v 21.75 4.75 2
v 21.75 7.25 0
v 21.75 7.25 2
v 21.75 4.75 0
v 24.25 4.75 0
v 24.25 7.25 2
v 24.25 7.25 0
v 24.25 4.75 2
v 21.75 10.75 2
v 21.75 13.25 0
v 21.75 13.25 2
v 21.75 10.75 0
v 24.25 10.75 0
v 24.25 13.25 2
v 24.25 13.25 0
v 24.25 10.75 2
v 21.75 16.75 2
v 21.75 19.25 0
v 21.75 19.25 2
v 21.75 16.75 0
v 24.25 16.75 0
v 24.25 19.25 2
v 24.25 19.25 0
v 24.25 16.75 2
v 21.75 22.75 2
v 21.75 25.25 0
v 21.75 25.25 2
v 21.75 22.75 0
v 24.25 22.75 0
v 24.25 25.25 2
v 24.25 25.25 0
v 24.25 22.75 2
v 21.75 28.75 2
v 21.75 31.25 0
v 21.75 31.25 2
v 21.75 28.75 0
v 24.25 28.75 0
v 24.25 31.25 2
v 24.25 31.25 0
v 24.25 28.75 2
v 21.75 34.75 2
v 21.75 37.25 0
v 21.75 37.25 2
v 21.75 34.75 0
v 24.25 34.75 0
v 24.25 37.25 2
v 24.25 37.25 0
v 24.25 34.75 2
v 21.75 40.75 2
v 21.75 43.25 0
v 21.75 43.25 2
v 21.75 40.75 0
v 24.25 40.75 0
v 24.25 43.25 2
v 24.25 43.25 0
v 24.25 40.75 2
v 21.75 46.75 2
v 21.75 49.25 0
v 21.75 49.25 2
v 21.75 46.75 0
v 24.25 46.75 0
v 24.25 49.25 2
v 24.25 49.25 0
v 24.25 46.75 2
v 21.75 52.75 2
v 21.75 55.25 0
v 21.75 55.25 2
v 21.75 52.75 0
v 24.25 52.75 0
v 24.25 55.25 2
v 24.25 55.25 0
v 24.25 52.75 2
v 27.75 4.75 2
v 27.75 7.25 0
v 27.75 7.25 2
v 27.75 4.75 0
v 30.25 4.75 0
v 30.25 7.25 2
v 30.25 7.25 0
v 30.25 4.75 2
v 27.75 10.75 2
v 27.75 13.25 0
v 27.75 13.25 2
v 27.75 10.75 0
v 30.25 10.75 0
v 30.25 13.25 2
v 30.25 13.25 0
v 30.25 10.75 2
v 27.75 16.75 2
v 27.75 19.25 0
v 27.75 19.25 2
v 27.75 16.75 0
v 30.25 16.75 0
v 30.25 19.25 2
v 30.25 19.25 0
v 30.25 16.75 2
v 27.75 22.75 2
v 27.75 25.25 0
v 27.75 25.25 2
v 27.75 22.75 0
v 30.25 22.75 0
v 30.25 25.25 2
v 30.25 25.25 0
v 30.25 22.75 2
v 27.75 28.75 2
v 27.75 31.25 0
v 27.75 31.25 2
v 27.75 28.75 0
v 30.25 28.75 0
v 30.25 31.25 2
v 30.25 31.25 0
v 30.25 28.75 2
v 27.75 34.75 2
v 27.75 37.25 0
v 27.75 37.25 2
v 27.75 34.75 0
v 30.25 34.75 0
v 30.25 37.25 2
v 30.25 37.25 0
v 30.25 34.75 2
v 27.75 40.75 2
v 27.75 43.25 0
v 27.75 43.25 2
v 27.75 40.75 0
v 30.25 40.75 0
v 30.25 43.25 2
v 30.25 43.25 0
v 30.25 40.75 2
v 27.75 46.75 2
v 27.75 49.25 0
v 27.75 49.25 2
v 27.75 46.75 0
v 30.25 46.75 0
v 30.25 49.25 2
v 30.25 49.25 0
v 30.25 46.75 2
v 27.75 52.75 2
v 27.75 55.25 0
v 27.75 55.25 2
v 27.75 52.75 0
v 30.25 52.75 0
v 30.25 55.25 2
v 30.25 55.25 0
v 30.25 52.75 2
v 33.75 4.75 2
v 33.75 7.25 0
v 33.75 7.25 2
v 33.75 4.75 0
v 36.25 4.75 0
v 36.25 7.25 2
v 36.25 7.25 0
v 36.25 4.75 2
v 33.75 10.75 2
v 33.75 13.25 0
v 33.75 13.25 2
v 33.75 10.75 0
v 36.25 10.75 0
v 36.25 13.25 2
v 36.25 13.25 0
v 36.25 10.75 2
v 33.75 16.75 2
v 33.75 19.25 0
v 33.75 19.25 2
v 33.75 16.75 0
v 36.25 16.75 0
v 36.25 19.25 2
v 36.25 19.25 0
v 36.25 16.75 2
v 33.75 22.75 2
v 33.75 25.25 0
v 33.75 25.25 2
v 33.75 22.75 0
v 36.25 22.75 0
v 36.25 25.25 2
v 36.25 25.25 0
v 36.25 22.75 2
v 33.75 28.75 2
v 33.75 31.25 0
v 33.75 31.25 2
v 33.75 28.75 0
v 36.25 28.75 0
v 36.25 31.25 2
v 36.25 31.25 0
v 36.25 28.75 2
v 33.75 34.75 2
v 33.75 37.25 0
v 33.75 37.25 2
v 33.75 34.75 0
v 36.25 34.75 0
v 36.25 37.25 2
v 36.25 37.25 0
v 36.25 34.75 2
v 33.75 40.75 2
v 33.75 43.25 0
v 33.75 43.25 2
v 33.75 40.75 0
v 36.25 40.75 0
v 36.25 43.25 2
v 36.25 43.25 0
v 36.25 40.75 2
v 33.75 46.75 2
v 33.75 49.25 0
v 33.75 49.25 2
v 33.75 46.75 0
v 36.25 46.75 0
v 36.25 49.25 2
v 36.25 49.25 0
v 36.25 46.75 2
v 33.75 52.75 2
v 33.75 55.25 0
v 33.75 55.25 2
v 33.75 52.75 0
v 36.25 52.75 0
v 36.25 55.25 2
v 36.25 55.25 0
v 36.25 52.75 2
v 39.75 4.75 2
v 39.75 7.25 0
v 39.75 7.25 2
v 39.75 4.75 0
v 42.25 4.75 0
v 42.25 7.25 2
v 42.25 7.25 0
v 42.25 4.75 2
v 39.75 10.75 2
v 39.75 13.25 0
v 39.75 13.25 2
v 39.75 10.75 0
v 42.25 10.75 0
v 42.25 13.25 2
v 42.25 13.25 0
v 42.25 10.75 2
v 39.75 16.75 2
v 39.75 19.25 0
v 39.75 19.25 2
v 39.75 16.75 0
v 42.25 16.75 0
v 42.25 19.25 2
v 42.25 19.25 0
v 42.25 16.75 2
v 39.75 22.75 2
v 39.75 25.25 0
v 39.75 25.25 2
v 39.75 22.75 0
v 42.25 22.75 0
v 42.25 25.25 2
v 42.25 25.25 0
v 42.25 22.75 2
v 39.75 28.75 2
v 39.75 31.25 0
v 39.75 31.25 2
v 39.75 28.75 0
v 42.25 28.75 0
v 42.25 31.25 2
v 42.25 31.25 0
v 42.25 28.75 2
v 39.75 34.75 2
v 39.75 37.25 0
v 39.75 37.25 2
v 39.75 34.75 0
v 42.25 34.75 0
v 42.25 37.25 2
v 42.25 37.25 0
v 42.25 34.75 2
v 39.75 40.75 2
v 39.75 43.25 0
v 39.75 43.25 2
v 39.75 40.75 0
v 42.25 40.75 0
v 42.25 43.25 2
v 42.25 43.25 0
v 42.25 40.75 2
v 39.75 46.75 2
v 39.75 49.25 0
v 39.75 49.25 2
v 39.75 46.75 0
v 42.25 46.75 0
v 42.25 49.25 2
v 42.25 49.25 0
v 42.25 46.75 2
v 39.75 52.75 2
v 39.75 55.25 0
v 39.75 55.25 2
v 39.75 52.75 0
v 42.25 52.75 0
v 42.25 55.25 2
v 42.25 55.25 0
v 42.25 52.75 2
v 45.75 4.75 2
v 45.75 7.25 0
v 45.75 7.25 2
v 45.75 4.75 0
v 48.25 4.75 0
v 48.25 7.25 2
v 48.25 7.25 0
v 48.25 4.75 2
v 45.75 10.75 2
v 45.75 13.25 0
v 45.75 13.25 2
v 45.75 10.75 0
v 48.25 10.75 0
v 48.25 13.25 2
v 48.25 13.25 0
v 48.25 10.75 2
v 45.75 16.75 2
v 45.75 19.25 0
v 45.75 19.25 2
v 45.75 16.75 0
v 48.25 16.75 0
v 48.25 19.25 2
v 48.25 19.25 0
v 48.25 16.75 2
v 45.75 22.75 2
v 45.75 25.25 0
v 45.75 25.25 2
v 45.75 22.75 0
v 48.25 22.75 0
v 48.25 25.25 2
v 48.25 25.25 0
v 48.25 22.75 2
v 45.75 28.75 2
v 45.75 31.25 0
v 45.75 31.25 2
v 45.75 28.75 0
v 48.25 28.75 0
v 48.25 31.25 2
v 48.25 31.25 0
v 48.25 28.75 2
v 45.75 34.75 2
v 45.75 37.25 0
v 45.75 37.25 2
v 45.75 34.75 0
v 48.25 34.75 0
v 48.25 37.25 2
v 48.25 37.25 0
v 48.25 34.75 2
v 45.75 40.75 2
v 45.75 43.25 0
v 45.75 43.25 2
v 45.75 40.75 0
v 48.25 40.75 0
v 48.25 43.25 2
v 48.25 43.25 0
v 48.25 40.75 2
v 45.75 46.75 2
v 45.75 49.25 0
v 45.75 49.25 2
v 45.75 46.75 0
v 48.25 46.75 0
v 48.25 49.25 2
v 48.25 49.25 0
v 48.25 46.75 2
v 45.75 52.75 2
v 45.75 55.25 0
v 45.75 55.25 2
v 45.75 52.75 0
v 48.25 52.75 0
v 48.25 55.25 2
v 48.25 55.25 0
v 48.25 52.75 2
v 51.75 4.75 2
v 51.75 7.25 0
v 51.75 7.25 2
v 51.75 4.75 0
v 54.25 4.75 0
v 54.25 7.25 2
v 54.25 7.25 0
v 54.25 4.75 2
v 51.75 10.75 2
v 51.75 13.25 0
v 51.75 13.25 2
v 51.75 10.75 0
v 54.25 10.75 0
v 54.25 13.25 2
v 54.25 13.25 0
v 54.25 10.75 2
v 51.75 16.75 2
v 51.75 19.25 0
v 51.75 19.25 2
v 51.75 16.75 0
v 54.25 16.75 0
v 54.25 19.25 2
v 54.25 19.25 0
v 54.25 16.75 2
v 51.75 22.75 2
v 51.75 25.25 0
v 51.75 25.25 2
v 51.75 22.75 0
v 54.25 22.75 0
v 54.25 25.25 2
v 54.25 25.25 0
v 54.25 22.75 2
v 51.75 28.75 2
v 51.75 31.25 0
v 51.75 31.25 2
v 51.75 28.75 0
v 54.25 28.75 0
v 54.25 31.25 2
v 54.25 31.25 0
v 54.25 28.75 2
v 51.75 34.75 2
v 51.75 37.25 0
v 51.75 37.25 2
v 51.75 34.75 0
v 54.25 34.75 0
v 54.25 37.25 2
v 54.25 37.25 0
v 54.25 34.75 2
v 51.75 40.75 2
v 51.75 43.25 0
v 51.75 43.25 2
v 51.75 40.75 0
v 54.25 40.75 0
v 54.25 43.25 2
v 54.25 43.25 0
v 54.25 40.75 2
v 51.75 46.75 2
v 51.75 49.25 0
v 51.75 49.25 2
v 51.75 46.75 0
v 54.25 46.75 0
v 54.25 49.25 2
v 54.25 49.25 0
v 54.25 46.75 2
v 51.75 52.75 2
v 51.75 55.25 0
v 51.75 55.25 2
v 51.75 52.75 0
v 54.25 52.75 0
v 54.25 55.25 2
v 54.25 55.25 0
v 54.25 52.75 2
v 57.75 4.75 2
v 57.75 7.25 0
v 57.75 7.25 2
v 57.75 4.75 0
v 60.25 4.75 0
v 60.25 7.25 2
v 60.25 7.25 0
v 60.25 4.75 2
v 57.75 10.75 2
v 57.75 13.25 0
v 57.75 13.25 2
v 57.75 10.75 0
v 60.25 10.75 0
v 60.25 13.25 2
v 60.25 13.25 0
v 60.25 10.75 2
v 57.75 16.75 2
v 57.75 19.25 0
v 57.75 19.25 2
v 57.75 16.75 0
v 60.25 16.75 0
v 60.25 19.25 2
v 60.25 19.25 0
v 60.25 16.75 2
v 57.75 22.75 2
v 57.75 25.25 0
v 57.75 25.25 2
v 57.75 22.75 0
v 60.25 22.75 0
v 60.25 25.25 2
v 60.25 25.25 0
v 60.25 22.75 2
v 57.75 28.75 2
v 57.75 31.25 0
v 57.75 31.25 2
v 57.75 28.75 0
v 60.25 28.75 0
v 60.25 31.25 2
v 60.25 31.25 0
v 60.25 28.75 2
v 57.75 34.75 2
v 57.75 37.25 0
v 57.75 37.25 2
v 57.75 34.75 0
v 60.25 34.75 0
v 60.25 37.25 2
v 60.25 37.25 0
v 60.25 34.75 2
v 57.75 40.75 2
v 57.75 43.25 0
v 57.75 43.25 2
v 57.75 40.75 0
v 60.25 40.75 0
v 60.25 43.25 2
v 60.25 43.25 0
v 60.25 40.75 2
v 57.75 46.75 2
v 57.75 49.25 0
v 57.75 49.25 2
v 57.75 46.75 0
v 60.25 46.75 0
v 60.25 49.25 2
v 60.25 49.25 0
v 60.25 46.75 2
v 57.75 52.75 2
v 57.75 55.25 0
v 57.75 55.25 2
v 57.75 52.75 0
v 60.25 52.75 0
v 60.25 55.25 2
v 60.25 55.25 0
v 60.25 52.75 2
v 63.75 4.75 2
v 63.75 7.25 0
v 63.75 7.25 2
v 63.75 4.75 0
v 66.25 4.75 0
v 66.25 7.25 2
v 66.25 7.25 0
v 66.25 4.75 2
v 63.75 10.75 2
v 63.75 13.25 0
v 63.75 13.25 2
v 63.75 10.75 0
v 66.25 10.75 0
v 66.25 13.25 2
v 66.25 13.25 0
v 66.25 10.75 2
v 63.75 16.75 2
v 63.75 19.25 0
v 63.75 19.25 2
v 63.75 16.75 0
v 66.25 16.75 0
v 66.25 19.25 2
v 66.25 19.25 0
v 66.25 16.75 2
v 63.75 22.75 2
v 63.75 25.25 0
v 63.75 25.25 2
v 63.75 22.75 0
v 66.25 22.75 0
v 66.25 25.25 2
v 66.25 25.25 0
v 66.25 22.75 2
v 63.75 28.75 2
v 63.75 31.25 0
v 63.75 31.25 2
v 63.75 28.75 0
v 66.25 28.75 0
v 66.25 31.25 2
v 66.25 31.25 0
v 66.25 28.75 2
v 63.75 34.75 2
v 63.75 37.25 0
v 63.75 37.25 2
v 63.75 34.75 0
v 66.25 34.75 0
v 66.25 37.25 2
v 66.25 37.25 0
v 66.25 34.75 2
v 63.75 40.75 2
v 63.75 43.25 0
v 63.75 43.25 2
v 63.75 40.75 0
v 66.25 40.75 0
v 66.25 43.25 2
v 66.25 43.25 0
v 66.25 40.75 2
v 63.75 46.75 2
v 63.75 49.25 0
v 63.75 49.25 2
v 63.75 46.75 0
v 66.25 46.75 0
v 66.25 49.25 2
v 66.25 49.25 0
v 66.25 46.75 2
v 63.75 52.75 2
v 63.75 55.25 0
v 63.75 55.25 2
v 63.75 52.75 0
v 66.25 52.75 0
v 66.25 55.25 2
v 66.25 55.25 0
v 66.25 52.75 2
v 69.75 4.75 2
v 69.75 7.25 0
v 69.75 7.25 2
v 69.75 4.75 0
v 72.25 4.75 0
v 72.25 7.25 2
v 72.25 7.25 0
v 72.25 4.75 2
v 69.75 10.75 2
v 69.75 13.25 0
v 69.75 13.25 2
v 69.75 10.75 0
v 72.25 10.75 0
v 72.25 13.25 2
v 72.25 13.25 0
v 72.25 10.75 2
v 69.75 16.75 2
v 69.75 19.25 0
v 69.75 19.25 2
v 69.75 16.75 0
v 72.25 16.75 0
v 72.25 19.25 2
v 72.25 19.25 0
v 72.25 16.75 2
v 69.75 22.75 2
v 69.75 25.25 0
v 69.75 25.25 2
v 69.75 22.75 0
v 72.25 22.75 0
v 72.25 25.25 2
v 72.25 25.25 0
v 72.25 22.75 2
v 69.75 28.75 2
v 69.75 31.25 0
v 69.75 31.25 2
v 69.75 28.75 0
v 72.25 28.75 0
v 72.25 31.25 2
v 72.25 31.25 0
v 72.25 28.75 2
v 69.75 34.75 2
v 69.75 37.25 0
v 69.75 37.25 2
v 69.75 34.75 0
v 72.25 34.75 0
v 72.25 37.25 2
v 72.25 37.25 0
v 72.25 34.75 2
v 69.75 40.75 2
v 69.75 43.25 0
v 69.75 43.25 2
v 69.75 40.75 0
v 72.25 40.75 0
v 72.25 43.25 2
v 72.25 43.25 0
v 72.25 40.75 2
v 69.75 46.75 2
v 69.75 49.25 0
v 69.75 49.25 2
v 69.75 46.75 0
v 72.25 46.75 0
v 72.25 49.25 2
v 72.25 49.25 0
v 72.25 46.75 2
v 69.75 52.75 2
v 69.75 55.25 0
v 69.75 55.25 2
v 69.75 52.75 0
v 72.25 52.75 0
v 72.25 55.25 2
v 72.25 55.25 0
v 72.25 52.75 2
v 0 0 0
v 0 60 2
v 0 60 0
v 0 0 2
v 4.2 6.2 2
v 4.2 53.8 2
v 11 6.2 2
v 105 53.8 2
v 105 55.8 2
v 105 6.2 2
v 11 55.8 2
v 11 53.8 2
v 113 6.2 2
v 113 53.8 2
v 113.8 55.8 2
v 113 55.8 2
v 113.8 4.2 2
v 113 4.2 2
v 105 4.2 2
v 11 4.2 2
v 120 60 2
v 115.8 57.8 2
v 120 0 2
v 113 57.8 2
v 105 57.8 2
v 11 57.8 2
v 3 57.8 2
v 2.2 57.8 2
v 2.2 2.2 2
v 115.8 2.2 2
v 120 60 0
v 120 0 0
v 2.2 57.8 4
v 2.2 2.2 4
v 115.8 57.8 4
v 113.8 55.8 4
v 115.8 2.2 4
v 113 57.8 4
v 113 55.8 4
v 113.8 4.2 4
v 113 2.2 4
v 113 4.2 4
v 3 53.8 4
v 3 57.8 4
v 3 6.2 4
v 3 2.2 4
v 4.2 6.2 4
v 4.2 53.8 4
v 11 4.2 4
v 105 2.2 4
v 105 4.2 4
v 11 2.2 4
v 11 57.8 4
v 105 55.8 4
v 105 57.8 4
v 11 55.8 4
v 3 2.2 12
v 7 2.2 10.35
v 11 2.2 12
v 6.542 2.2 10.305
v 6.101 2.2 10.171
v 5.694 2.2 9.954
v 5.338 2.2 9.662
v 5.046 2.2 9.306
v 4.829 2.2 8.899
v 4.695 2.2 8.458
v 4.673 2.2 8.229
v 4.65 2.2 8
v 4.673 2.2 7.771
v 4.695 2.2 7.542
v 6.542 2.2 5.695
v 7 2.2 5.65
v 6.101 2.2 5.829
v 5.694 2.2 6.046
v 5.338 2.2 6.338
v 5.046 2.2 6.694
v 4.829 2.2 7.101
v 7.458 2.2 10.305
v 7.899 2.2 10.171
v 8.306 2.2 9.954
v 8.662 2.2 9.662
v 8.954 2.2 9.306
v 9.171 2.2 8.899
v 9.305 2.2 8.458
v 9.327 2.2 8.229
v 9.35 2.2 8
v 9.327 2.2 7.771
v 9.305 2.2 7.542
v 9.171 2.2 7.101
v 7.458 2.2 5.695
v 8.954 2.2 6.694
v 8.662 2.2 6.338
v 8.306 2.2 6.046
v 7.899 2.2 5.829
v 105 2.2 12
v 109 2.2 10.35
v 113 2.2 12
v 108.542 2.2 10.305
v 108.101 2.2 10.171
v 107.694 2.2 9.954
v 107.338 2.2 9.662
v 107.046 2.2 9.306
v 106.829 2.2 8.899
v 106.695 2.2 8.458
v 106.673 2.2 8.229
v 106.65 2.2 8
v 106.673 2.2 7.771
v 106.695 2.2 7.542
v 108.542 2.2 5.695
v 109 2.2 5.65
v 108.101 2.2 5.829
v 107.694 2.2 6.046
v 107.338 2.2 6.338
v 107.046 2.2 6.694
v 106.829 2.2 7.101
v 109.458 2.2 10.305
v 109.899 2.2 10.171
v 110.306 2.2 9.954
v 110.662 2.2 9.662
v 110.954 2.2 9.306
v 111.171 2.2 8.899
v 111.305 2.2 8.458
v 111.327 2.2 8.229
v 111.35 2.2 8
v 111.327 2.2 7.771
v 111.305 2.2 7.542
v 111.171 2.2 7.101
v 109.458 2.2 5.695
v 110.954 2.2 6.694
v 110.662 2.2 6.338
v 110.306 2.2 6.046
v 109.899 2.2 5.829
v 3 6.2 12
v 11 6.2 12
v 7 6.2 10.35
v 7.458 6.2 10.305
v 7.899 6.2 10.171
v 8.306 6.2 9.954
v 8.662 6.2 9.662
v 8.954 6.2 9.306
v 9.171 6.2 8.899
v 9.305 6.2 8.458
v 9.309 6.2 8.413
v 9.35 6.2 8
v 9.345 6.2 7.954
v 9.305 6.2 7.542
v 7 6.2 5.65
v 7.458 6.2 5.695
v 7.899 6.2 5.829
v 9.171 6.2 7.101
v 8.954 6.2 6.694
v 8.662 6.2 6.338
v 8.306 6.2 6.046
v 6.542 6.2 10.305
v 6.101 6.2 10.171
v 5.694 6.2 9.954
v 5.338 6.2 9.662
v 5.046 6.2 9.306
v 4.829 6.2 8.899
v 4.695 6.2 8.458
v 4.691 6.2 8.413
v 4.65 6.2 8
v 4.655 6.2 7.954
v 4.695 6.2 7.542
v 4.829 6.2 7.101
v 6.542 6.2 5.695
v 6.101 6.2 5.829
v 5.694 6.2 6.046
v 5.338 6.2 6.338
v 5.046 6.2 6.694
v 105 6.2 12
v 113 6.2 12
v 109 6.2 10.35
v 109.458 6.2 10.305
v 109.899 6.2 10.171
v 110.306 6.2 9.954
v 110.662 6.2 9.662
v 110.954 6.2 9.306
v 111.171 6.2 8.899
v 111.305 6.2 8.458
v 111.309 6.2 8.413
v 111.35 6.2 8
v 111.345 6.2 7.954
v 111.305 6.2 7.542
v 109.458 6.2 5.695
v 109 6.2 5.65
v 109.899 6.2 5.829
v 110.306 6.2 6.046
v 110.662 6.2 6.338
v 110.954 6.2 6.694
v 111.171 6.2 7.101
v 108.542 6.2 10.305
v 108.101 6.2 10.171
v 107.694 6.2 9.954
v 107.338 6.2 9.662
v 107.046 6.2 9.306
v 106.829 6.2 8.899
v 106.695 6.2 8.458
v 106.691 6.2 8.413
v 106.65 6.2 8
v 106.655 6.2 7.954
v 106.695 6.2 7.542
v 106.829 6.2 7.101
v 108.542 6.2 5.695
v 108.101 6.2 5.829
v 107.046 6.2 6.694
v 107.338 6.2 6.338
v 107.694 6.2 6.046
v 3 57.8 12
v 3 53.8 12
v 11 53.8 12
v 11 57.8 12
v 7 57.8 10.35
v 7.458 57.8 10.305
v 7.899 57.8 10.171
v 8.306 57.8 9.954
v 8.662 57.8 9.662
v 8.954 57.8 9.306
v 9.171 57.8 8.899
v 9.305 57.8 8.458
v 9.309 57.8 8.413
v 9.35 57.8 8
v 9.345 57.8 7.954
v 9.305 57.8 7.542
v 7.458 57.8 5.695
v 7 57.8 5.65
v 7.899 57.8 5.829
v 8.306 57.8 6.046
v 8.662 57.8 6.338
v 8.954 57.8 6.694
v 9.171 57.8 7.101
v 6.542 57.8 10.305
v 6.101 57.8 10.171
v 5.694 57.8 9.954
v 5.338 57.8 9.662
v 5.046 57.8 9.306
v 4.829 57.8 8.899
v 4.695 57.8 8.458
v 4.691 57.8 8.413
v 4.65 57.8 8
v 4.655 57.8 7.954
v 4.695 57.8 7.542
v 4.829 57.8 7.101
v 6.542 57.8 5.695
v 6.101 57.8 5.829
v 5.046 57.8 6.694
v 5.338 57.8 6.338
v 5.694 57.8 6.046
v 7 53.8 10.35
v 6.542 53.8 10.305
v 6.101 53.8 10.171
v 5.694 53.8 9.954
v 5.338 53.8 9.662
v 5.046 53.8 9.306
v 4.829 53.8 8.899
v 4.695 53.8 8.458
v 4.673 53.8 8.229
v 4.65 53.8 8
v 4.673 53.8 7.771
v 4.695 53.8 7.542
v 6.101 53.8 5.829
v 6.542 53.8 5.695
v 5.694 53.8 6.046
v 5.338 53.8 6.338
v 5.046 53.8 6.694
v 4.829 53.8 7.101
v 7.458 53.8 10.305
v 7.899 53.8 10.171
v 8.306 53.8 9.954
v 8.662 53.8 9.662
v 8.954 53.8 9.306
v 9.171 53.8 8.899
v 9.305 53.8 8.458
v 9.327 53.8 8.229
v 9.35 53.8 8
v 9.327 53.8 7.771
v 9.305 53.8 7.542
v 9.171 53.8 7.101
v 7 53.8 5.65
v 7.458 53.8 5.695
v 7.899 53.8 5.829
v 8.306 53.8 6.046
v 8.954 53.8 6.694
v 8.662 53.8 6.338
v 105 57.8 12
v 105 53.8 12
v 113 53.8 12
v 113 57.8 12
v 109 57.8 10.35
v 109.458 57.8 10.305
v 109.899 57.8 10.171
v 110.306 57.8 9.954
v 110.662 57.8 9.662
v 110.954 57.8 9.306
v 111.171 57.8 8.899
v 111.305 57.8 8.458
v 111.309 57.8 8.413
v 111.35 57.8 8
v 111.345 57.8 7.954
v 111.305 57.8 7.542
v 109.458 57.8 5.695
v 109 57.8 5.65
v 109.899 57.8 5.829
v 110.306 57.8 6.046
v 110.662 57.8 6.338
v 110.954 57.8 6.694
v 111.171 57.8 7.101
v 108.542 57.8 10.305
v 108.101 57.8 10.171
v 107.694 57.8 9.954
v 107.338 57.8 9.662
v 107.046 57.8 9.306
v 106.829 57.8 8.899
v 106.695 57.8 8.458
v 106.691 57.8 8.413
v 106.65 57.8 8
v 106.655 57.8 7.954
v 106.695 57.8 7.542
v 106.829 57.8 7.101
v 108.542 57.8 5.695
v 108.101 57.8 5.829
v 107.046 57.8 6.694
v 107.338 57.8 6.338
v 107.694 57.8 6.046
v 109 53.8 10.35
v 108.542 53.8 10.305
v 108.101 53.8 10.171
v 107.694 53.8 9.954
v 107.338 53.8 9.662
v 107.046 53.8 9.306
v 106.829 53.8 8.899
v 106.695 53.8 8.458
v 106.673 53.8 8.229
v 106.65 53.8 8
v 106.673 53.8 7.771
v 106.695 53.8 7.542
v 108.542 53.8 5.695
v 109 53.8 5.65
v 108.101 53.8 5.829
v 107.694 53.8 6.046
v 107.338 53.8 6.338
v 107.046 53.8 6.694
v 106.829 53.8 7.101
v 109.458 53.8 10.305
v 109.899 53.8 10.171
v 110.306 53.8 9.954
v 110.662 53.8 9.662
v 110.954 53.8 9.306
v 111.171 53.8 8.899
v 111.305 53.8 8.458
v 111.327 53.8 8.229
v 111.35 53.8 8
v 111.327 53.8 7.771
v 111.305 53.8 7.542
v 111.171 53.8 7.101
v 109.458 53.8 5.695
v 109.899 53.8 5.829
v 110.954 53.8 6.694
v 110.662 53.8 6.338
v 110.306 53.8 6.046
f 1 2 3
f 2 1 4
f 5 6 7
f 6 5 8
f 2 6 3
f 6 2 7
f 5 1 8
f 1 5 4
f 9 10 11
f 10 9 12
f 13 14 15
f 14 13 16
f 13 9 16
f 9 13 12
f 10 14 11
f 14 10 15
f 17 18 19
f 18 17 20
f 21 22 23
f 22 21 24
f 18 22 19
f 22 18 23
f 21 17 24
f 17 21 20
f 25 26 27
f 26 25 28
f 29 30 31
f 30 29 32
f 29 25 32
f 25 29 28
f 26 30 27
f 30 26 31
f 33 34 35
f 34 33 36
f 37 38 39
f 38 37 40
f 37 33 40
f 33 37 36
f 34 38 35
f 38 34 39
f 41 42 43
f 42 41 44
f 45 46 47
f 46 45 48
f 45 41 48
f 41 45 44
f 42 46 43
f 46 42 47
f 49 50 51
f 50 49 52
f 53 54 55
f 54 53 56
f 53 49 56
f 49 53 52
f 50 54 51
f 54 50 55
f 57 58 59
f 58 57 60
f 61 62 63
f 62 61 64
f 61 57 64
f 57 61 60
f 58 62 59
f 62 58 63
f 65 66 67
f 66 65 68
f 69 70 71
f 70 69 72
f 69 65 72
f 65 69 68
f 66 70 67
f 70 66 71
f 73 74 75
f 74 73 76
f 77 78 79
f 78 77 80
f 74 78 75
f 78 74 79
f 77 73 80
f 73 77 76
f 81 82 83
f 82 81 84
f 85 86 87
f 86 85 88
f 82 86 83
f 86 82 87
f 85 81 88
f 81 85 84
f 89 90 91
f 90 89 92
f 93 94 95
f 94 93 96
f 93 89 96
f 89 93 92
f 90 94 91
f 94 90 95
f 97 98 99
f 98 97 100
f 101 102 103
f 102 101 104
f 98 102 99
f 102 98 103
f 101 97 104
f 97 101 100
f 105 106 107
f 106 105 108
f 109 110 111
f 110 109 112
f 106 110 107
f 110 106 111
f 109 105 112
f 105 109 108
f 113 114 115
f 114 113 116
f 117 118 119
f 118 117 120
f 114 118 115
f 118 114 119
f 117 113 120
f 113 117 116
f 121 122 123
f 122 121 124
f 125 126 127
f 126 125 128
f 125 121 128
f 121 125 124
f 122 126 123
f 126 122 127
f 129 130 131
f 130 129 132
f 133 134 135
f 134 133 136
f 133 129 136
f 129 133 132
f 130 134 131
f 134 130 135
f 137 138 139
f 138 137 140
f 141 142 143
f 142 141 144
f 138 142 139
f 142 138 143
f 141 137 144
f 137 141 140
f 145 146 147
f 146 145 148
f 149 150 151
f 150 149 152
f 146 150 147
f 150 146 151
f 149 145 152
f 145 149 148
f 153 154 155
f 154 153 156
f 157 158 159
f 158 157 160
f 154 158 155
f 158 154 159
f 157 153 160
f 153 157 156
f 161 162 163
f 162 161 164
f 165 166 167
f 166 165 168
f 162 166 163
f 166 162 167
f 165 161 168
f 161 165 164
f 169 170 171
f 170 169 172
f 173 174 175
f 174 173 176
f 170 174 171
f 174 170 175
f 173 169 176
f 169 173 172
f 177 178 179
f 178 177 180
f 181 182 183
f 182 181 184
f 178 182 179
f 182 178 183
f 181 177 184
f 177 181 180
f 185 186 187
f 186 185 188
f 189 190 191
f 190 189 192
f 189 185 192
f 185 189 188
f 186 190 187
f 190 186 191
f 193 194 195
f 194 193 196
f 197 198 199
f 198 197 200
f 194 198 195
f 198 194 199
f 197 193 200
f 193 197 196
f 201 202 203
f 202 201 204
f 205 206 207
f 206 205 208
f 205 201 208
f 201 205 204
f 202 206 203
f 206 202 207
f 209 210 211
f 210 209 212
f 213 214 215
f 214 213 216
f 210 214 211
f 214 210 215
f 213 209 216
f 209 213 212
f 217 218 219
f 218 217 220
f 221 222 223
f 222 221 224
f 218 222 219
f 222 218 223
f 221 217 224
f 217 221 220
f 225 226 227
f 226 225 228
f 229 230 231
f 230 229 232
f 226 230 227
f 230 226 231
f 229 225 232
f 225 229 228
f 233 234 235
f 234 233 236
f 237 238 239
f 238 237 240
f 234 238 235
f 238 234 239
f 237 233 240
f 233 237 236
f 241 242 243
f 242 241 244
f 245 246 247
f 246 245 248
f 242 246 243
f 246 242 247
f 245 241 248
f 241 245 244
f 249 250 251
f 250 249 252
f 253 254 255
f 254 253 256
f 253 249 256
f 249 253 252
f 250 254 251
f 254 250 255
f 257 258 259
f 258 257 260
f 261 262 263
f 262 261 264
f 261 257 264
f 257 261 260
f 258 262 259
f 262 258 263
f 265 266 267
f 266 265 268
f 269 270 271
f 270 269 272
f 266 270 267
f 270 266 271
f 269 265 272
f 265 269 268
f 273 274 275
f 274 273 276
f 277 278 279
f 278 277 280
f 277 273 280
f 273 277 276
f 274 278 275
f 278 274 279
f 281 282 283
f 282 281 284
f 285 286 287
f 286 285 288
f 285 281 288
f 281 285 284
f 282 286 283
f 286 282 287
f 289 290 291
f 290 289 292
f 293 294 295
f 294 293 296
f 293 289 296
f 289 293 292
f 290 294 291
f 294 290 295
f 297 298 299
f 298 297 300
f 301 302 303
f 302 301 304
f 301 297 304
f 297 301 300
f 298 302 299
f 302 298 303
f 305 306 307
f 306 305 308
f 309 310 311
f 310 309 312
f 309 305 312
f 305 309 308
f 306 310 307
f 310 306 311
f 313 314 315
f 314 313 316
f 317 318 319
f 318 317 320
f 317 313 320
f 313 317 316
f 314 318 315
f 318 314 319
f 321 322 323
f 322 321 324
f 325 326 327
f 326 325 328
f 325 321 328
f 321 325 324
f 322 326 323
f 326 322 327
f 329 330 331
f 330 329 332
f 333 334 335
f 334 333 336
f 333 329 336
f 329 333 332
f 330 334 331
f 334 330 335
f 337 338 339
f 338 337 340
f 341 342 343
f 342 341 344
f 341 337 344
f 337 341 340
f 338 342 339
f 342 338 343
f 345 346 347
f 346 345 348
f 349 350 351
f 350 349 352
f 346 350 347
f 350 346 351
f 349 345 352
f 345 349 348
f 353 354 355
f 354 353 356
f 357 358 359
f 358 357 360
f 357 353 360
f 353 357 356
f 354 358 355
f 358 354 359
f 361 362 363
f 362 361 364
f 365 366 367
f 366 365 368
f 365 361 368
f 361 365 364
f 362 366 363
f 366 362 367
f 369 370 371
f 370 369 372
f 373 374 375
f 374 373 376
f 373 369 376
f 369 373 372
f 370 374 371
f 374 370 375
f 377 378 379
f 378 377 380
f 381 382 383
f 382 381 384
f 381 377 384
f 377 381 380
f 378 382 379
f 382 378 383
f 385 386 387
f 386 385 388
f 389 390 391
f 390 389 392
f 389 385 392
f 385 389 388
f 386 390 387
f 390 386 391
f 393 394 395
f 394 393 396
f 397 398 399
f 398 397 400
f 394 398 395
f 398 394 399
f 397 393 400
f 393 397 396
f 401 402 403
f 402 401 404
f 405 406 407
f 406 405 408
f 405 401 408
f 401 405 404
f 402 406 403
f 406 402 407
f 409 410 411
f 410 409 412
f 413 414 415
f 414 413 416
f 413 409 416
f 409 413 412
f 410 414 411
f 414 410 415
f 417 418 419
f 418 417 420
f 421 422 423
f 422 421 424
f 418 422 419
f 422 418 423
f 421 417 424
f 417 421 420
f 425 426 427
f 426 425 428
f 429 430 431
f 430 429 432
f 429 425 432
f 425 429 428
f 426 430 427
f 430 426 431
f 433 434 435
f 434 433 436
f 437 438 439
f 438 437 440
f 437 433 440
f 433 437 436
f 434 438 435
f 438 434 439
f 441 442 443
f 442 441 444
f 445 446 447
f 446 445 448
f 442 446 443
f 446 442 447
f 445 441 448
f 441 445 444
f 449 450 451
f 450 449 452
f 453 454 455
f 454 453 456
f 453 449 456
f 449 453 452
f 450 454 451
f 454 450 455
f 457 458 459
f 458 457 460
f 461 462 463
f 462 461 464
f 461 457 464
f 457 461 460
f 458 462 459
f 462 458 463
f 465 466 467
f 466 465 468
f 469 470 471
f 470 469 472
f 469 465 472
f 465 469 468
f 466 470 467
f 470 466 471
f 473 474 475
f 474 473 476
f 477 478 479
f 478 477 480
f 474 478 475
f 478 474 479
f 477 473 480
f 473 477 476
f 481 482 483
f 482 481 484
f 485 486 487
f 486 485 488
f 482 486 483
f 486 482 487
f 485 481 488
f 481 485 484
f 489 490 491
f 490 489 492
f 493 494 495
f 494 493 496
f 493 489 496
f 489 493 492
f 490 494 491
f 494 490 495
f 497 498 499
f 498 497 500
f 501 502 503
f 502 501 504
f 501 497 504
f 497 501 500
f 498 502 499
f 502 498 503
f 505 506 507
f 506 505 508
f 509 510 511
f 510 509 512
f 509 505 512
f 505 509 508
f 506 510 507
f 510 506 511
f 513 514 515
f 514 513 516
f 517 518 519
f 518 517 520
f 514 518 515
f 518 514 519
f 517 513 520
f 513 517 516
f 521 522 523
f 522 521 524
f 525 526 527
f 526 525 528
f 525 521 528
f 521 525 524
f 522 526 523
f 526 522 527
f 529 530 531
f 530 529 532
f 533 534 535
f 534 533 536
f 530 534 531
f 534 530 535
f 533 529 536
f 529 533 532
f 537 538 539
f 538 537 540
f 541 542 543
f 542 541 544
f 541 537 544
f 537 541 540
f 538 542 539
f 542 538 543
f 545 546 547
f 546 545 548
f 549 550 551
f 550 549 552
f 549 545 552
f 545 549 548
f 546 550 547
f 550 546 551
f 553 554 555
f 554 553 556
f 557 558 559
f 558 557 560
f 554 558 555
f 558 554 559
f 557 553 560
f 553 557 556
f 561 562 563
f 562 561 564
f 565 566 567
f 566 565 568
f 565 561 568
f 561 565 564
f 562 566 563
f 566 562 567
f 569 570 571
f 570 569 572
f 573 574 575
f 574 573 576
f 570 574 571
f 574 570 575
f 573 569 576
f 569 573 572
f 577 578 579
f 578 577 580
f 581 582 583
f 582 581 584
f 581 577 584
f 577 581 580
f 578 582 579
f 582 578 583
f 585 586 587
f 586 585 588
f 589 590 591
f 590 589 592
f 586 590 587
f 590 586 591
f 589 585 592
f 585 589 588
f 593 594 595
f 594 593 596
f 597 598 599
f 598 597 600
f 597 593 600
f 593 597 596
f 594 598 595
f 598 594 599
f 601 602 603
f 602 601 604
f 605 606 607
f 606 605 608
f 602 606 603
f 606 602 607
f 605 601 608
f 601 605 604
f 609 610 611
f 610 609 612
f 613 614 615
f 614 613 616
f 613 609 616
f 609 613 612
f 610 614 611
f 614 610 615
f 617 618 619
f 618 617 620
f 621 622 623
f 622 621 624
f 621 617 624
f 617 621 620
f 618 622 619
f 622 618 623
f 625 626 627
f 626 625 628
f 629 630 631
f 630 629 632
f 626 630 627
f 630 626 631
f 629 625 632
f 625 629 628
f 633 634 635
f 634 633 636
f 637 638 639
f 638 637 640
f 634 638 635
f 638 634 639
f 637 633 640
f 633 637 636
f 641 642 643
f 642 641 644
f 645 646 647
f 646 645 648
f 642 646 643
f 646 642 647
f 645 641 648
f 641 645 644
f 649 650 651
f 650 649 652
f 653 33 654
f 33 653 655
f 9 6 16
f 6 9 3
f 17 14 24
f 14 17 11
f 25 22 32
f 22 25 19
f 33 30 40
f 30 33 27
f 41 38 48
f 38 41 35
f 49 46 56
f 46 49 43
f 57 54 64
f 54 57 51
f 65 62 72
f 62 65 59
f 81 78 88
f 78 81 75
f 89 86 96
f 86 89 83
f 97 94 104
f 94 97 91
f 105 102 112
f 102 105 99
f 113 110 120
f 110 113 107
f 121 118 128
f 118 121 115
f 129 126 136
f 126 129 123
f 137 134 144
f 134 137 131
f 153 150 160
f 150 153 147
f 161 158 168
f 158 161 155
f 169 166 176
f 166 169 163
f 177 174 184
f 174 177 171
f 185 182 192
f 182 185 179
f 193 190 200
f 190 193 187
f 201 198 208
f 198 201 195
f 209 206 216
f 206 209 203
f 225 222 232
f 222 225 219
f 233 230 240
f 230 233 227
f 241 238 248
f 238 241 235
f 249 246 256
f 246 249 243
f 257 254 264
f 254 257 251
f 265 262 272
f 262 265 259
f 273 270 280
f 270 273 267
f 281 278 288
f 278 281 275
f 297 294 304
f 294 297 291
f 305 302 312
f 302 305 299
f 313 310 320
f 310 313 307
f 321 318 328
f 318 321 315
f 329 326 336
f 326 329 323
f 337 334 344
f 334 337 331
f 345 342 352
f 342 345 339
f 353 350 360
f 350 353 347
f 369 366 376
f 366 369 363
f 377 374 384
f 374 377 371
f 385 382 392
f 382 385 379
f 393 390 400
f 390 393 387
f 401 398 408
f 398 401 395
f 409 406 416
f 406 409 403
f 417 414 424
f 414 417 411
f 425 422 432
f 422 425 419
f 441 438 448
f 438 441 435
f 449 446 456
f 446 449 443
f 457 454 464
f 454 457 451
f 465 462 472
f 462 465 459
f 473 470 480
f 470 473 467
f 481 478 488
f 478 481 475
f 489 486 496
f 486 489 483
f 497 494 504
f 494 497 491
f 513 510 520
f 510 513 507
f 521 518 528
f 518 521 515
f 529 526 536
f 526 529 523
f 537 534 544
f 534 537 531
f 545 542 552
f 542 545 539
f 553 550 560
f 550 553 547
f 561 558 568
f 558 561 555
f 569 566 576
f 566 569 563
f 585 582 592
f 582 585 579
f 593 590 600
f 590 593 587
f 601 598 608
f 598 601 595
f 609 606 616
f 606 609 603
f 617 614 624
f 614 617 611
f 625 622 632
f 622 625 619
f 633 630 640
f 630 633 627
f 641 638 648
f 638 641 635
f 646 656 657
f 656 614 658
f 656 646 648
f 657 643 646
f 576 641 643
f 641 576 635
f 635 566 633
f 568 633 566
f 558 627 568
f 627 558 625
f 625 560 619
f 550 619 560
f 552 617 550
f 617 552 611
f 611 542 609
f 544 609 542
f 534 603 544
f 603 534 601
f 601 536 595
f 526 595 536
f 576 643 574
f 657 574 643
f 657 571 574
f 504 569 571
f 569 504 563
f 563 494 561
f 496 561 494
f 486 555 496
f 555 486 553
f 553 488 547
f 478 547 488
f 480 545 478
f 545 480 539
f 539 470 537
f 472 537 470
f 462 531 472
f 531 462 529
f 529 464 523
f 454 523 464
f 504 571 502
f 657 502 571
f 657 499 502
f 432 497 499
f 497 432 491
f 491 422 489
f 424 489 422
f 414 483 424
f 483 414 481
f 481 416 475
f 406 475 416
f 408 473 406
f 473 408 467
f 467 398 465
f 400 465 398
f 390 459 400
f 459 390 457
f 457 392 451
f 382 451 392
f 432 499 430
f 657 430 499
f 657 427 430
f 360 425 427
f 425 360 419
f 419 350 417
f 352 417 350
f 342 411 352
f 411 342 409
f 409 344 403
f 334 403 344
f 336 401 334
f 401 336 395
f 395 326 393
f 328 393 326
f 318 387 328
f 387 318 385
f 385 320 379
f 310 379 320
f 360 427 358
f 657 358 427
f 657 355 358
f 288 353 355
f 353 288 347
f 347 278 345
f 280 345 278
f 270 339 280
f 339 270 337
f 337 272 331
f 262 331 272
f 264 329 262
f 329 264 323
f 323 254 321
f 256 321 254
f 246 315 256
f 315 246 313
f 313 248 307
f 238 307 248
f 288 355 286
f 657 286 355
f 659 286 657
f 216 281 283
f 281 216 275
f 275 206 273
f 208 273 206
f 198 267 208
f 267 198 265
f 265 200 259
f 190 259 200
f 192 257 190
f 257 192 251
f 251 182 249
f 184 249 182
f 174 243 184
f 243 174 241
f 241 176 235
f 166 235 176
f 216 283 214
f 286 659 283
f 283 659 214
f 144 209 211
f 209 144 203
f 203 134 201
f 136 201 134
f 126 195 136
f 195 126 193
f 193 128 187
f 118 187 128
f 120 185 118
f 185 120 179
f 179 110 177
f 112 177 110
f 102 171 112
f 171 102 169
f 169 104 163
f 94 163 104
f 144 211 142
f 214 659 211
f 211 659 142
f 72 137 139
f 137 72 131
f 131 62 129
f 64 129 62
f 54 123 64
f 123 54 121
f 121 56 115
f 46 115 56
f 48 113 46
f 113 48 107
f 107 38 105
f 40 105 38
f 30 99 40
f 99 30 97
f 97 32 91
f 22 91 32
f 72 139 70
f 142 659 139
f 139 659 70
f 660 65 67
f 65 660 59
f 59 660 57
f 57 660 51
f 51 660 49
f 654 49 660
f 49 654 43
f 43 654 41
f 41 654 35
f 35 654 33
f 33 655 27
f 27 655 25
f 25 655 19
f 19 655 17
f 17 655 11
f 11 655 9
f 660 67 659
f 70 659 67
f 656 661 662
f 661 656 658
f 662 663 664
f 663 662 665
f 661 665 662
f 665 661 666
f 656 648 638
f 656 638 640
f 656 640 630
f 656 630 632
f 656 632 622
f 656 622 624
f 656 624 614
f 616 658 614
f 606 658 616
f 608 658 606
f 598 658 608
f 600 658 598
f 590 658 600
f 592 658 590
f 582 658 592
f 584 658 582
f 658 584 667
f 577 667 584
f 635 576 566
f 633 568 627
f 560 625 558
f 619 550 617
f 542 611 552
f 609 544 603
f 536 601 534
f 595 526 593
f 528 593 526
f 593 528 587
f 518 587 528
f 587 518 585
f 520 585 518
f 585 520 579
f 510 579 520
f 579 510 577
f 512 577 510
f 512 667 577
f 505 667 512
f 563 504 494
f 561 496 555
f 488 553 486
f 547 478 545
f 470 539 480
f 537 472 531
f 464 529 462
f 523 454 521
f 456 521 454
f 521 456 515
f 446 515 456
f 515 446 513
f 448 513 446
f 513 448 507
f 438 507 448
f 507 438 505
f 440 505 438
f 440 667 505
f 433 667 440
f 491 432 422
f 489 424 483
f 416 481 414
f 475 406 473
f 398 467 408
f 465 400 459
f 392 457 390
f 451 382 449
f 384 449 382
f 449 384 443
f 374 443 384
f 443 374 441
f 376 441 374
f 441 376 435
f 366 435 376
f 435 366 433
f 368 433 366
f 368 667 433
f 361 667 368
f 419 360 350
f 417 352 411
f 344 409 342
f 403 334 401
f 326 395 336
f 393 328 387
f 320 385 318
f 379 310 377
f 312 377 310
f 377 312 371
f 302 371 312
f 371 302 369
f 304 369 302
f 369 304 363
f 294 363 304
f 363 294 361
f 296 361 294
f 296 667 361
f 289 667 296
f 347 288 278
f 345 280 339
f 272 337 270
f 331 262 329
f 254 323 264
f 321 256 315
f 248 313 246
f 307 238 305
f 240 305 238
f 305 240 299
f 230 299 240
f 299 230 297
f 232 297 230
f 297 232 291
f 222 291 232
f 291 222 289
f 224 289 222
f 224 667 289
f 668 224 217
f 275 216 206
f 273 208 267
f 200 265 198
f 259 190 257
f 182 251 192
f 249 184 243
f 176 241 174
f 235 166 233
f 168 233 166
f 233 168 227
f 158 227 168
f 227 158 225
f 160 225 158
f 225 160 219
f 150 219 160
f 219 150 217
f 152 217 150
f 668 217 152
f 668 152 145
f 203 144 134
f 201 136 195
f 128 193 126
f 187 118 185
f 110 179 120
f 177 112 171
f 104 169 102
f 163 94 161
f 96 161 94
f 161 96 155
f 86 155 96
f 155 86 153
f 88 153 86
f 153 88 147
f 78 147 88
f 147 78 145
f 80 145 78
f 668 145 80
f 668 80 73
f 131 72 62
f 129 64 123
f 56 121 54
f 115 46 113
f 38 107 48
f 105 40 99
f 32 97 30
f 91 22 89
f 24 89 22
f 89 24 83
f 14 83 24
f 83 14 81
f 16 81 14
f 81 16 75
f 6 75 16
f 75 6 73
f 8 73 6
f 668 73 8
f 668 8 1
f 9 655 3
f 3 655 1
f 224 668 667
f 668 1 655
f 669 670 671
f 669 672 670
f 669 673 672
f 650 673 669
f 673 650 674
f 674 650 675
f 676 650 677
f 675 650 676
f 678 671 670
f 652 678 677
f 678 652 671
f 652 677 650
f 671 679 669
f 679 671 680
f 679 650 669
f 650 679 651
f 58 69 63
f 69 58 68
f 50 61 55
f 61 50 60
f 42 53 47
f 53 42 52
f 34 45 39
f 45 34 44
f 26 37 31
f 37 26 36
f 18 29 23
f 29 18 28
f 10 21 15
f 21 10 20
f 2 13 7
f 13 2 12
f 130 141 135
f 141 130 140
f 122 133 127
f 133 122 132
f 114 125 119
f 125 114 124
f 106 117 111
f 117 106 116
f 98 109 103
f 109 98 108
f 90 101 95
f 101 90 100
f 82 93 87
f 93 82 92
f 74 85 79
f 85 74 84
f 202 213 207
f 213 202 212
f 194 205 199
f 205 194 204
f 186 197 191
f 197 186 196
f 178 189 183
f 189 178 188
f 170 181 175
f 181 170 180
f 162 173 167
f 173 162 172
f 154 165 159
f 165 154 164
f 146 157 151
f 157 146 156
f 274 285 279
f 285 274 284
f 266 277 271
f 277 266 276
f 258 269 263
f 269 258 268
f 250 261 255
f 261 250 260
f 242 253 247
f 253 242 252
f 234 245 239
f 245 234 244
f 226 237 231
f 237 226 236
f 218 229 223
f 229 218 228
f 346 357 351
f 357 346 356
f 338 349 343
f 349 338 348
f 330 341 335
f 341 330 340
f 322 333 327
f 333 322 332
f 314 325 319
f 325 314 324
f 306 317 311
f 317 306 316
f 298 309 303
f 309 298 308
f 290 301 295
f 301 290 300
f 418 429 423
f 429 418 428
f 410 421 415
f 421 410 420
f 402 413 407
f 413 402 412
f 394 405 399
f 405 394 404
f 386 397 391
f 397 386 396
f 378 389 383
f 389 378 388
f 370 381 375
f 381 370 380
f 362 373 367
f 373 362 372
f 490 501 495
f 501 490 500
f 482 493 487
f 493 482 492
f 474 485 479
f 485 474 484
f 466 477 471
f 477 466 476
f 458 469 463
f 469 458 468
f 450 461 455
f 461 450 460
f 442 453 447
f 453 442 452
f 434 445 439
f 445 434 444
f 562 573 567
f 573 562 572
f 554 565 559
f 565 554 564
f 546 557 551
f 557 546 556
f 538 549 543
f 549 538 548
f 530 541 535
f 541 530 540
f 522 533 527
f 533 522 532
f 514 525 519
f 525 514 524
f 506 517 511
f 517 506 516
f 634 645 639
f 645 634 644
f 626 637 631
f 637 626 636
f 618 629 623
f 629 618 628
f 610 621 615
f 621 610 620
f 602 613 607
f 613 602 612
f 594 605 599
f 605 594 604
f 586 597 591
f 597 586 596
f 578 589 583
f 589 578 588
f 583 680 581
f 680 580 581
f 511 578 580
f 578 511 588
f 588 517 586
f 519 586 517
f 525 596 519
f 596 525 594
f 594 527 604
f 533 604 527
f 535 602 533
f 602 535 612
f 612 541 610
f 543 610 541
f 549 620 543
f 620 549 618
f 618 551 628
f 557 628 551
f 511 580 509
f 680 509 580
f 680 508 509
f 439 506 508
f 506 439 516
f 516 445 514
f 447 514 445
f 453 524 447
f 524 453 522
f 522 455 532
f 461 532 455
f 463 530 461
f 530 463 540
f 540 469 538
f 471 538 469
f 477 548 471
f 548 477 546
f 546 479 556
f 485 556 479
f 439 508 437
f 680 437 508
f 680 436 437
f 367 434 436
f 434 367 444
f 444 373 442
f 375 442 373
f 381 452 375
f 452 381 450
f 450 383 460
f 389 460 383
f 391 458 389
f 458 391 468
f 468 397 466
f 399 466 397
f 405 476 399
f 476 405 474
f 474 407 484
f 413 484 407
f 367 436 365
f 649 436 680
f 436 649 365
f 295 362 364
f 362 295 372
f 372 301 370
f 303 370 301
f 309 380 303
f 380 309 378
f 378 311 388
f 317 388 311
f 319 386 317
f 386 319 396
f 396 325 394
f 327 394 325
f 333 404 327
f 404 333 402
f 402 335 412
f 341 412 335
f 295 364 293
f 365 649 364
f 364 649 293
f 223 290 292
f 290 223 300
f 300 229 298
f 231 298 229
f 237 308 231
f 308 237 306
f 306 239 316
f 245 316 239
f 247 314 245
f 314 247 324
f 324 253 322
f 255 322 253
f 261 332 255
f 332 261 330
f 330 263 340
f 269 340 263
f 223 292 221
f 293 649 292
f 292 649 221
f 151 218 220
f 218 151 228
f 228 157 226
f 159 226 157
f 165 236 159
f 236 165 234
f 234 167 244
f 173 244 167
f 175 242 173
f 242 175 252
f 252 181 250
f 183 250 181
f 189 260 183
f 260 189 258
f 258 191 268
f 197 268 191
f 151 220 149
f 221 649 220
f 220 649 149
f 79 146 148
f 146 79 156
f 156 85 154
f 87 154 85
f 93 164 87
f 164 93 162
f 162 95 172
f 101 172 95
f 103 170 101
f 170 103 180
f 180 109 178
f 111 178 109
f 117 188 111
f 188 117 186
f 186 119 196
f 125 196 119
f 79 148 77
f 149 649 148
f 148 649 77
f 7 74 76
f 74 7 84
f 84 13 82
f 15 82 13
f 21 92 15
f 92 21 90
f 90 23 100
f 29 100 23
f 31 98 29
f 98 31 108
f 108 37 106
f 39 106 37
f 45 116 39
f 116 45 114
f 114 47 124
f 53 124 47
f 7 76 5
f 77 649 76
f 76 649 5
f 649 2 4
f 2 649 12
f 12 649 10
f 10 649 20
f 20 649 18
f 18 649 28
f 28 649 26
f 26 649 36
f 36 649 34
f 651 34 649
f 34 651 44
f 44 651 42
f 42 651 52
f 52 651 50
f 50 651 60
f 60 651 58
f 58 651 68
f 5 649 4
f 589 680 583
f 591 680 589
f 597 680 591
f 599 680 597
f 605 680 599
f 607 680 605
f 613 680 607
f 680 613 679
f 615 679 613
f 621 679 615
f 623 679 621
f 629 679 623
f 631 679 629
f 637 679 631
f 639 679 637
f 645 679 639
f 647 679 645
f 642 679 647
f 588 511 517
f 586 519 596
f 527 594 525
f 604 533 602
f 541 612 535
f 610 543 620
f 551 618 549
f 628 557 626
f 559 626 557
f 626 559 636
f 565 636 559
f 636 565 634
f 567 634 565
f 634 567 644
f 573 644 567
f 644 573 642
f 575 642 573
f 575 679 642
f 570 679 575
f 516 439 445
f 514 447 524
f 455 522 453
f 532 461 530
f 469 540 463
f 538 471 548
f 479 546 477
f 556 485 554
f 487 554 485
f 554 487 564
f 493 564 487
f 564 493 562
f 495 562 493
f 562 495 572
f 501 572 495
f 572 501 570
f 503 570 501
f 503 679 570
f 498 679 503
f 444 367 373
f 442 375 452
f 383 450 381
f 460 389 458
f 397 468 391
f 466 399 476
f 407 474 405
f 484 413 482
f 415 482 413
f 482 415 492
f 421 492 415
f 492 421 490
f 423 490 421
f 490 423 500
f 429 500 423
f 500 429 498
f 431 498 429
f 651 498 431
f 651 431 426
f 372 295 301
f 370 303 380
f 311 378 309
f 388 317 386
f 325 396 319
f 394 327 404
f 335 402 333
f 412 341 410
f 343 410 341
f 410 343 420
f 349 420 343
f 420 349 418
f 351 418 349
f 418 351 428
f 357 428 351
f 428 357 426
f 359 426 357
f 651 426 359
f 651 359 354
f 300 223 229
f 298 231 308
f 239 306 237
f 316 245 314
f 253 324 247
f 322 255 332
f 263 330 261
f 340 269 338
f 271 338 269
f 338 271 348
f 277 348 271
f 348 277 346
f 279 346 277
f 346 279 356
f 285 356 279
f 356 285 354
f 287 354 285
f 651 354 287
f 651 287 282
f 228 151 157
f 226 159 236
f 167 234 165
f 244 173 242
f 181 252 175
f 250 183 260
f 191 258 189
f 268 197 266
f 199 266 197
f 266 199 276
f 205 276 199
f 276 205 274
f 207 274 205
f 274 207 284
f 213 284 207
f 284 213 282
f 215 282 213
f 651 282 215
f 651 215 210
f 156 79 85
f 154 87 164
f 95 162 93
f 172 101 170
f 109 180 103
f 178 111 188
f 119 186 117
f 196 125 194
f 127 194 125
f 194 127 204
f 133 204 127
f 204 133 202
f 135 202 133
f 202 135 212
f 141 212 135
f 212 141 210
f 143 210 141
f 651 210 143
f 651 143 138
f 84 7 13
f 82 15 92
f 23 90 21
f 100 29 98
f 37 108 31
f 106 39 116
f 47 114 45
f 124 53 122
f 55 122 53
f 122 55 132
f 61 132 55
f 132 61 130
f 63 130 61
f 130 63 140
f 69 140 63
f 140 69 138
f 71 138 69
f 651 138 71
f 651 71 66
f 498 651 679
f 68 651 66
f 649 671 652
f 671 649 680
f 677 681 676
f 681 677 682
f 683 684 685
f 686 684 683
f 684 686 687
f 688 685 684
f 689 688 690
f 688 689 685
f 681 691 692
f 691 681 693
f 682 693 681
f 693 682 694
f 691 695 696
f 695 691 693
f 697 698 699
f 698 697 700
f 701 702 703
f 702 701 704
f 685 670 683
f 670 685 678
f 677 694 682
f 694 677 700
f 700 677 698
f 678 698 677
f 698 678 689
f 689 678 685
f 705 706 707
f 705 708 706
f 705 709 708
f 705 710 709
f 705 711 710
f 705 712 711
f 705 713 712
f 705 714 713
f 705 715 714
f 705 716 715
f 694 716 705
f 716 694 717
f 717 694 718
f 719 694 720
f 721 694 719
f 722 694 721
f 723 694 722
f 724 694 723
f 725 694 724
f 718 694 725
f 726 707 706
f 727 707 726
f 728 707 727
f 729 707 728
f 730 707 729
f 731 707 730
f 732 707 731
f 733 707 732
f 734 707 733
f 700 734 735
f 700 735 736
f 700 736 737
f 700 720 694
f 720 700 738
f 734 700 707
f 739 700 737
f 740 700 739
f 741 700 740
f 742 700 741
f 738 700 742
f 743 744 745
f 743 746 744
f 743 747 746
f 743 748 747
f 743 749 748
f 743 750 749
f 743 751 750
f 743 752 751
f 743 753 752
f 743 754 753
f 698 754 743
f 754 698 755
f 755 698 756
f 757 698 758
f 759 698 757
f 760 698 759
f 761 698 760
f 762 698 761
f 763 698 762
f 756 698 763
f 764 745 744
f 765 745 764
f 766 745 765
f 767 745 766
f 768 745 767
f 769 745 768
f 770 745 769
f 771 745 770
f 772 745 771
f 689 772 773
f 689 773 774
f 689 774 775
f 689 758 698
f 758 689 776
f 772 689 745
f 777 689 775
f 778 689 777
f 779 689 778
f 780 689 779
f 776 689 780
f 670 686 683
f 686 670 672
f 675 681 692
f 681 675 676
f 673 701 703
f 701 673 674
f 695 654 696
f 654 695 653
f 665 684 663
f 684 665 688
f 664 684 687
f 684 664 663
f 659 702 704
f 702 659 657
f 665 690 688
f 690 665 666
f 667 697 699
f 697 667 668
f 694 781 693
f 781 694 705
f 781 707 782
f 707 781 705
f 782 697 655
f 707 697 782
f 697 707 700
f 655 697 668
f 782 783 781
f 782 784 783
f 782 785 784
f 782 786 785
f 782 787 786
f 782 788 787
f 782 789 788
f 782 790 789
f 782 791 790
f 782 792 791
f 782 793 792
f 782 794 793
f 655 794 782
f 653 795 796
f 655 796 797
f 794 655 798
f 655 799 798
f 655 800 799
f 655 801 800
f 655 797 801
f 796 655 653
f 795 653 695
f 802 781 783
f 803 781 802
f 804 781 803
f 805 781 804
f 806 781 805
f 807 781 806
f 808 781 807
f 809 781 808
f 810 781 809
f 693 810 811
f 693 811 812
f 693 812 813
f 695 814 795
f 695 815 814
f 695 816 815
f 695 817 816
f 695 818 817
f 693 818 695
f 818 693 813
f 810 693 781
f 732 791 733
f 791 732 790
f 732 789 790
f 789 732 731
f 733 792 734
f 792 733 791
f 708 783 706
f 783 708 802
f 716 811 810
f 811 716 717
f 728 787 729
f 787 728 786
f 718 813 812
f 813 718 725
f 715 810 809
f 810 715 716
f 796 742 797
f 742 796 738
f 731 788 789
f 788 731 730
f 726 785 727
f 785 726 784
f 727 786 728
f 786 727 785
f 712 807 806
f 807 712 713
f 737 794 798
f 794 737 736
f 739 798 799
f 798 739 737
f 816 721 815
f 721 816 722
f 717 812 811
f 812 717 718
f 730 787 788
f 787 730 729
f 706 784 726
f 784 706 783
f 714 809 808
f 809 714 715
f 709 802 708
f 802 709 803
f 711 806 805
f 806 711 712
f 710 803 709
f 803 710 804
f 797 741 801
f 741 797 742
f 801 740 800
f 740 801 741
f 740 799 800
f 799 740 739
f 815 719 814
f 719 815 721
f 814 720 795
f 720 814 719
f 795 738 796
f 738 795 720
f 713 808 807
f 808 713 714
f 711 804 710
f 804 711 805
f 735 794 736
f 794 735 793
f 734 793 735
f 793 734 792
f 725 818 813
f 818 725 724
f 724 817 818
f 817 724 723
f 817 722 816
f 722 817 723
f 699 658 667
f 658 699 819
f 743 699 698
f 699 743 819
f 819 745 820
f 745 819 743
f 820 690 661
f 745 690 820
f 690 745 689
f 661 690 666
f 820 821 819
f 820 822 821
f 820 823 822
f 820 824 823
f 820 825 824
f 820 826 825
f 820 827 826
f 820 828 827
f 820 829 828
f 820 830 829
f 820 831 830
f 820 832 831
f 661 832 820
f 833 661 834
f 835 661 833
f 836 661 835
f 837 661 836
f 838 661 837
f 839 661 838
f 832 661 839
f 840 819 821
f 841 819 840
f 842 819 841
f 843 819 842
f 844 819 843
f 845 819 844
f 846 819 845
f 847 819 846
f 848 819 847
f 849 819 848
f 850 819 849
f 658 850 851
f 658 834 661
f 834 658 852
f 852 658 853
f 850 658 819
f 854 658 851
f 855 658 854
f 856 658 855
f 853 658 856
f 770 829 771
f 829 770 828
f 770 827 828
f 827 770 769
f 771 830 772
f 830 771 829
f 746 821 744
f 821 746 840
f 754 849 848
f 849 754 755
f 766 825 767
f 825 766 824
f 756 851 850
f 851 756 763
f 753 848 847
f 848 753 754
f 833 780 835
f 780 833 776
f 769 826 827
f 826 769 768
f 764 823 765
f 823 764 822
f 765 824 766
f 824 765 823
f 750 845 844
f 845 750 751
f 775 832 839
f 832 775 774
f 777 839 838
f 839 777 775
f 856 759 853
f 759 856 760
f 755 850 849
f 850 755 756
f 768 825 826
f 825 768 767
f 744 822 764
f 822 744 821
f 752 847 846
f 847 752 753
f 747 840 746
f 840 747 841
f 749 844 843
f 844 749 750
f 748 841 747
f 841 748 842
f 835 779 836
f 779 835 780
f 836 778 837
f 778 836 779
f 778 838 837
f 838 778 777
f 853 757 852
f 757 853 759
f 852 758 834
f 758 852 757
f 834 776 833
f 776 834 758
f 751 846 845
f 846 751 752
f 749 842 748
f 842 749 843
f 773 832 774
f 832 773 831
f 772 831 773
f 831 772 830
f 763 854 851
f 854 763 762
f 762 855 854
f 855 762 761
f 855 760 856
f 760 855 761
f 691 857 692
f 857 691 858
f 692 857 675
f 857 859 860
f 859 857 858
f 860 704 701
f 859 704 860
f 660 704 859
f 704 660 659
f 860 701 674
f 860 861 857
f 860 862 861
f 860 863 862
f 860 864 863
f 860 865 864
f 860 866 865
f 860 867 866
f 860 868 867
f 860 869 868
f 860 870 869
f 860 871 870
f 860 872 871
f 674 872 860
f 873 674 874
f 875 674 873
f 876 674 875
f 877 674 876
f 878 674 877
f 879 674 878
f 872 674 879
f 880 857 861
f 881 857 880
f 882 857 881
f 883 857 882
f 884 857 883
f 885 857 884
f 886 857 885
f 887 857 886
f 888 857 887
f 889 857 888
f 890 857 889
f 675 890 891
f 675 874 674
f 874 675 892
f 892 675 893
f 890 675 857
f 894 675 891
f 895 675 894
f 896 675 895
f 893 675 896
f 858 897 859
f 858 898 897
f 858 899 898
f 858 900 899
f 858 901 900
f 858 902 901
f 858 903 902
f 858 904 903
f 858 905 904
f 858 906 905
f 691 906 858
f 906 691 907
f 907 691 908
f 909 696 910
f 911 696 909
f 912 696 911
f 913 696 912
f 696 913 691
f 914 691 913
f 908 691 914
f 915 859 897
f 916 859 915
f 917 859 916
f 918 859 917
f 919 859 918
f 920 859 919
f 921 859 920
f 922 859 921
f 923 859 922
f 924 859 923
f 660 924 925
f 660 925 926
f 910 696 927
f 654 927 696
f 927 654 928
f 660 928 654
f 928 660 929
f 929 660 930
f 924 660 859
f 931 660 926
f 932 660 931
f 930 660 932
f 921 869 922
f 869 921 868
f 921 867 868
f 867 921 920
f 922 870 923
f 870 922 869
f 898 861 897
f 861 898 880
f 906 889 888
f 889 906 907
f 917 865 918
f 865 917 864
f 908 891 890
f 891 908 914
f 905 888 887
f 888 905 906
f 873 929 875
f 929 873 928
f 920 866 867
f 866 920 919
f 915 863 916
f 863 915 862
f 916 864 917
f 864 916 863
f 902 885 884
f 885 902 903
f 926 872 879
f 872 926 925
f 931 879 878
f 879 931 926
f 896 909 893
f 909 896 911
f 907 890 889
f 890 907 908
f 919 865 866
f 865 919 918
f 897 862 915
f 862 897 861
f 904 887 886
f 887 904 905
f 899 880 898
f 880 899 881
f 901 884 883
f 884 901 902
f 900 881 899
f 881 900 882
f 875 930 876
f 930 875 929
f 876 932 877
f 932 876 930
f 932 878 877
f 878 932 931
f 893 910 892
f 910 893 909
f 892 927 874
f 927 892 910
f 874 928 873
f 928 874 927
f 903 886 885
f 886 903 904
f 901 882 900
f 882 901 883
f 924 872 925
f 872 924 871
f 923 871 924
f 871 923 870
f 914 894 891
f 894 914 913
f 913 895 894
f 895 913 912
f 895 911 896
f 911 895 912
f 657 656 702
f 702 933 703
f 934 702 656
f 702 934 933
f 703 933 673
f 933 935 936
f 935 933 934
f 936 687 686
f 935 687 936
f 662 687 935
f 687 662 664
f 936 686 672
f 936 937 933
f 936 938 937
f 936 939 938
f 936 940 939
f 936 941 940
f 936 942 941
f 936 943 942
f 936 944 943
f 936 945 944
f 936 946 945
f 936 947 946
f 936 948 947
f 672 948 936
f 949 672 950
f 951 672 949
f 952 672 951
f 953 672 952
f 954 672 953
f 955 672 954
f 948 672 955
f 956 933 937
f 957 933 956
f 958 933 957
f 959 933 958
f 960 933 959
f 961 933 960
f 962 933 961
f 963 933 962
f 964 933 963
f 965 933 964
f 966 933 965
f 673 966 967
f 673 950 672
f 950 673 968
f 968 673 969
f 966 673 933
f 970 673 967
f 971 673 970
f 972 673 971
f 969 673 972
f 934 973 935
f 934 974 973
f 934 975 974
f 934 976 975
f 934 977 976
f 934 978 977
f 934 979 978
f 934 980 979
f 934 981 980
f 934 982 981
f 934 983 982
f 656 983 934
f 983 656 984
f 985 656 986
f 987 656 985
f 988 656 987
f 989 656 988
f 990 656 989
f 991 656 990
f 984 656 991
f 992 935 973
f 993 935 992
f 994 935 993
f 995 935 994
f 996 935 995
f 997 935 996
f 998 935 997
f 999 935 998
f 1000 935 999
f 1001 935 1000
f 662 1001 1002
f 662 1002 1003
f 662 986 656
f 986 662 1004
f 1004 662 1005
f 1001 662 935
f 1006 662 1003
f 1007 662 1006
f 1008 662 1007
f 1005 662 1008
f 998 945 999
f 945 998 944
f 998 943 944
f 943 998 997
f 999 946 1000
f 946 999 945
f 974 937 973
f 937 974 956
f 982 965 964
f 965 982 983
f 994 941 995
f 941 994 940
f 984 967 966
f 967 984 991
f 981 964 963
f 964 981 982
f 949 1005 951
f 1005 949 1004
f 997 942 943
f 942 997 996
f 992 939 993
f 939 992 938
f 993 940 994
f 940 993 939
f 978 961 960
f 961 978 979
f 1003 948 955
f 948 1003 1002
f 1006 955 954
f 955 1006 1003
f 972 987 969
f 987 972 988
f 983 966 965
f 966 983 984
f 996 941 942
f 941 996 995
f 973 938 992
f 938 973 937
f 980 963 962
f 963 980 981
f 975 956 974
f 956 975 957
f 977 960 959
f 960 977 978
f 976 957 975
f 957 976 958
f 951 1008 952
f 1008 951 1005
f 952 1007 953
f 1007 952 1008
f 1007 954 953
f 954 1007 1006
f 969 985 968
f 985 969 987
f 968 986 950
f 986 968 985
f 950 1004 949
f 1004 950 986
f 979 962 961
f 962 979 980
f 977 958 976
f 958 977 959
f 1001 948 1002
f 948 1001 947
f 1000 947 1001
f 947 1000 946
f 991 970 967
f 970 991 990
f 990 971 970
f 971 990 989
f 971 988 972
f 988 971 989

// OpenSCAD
L=110;
LL=120;
W=49.5;
WW=60;
HH=45;
T=2;

XW=42;
XL=79;

offsetL = T+1.5; // (LL-L)/2;
offsetW = (WW-W)/2 - 1;

difference() {
    cube([LL,WW,T]);
    translate([offsetL + 4 + XL/2, WW/2,0])
    fanvent();
    /*
    translate([offsetL + 4 + XL/2, WW/2,0])
    difference() {
        cylinder(d=40,h=5,$fn=256, center=true);
        cube([100,2,5],center=true);
        rotate([0,0,45])
        cube([100,2,5],center=true);
        rotate([0,0,90])
        cube([100,2,5],center=true);
        rotate([0,0,-45])
        cube([100,2,5],center=true);
        
        cylinder(d=8,h=5,$fn=256,center=true);
        difference() {
            cylinder(d=27,h=5,$fn=256,center=true);
            cylinder(d=23,h=5,$fn=256,center=true);
        }
    }
    */
}


difference() {
    translate([2.2,2.2,2])
    difference() {
        cube([LL-6-.4,WW-4-.4,T]);
        translate([2,2,0])
        cube([LL-10-.4,WW-8-.4,T]);
    }
}

translate([7,T+.2,2])
    support();
translate([LL-7-T-T,T+.2,2])
    support();

translate([7,WW-4-T-.2,2])
    support();
translate([LL-7-T-T,WW-4-T-.2,2])
    support();

module support() {
    difference() {
        translate([-4,0,0])
        cube([8,4,10]);
        translate([0,0,4+2])
        rotate([90,0,0])
        cylinder(d=4.7,h=10,center=true,$fn=32);
    }
}

module fanvent() {
    for (i = [-24:6:24]) {
        for (j = [-24:6:24]) {
            translate([i,j,0])
            cube([2.5,2.5,30], center=true);
        }
    }
}
